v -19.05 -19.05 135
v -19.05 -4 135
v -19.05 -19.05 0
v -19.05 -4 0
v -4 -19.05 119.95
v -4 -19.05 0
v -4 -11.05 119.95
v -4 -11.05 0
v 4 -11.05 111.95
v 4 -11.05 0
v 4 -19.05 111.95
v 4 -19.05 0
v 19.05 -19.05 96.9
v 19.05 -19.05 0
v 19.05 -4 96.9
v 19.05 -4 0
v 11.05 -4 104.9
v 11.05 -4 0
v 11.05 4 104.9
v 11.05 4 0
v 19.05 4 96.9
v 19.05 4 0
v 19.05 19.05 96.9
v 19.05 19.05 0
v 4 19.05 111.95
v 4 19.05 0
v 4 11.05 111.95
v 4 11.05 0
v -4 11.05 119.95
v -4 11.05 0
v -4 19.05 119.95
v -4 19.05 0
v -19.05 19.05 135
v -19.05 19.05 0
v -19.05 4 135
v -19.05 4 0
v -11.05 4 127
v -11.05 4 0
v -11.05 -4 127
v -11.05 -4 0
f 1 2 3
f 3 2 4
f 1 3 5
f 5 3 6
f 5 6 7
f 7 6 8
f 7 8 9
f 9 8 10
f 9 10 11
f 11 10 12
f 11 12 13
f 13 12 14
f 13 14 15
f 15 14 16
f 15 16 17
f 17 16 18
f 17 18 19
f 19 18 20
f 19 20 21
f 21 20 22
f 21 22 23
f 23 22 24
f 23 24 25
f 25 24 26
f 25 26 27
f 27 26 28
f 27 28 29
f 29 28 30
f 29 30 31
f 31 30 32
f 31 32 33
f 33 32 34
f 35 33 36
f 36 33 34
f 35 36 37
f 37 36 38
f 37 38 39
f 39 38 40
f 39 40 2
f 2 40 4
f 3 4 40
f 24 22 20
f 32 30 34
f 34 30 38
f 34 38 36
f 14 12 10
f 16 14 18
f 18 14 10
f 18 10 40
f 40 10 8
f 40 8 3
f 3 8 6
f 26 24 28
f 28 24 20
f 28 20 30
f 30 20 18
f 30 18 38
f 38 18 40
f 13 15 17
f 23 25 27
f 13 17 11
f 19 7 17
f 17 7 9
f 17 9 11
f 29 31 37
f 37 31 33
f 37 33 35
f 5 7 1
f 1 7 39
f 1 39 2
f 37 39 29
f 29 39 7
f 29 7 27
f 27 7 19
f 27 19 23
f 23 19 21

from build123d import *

# Parameters (mm, degrees)
PROFILE_DEPTH     = 135
MITER1_DEPTH      = 138.66192284
MITER1_DEPTH_BACK = 138.66192284


with BuildPart() as part:
    # Sketch1 → Profile (new body)
    with BuildSketch(Plane.XY):
        Polygon((-19.05, -19.05), (-4, -19.05), (-4, -11.05), (4, -11.05), (4, -19.05), (19.05, -19.05), (19.05, -4), (11.05, -4), (11.05, 4), (19.05, 4), (19.05, 19.05), (4, 19.05), (4, 11.05), (-4, 11.05), (-4, 19.05), (-19.05, 19.05), (-19.05, 4), (-11.05, 4), (-11.05, -4), (-19.05, -4), align=None)
    extrude(amount=PROFILE_DEPTH)

    # Sketch2 → Miter1 (cut, two sides: drawn at the far end of the back side and taken through both)
    with BuildSketch(Plane(origin=(0, 0, 0), x_dir=(1, 0, 0), z_dir=(0, 1, 0)).offset(-MITER1_DEPTH_BACK)):
        Polygon((-19.05, -135), (25, -90.95), (25, -145), align=None)
    extrude(amount=MITER1_DEPTH + MITER1_DEPTH_BACK, mode=Mode.SUBTRACT)


solid = part.part
